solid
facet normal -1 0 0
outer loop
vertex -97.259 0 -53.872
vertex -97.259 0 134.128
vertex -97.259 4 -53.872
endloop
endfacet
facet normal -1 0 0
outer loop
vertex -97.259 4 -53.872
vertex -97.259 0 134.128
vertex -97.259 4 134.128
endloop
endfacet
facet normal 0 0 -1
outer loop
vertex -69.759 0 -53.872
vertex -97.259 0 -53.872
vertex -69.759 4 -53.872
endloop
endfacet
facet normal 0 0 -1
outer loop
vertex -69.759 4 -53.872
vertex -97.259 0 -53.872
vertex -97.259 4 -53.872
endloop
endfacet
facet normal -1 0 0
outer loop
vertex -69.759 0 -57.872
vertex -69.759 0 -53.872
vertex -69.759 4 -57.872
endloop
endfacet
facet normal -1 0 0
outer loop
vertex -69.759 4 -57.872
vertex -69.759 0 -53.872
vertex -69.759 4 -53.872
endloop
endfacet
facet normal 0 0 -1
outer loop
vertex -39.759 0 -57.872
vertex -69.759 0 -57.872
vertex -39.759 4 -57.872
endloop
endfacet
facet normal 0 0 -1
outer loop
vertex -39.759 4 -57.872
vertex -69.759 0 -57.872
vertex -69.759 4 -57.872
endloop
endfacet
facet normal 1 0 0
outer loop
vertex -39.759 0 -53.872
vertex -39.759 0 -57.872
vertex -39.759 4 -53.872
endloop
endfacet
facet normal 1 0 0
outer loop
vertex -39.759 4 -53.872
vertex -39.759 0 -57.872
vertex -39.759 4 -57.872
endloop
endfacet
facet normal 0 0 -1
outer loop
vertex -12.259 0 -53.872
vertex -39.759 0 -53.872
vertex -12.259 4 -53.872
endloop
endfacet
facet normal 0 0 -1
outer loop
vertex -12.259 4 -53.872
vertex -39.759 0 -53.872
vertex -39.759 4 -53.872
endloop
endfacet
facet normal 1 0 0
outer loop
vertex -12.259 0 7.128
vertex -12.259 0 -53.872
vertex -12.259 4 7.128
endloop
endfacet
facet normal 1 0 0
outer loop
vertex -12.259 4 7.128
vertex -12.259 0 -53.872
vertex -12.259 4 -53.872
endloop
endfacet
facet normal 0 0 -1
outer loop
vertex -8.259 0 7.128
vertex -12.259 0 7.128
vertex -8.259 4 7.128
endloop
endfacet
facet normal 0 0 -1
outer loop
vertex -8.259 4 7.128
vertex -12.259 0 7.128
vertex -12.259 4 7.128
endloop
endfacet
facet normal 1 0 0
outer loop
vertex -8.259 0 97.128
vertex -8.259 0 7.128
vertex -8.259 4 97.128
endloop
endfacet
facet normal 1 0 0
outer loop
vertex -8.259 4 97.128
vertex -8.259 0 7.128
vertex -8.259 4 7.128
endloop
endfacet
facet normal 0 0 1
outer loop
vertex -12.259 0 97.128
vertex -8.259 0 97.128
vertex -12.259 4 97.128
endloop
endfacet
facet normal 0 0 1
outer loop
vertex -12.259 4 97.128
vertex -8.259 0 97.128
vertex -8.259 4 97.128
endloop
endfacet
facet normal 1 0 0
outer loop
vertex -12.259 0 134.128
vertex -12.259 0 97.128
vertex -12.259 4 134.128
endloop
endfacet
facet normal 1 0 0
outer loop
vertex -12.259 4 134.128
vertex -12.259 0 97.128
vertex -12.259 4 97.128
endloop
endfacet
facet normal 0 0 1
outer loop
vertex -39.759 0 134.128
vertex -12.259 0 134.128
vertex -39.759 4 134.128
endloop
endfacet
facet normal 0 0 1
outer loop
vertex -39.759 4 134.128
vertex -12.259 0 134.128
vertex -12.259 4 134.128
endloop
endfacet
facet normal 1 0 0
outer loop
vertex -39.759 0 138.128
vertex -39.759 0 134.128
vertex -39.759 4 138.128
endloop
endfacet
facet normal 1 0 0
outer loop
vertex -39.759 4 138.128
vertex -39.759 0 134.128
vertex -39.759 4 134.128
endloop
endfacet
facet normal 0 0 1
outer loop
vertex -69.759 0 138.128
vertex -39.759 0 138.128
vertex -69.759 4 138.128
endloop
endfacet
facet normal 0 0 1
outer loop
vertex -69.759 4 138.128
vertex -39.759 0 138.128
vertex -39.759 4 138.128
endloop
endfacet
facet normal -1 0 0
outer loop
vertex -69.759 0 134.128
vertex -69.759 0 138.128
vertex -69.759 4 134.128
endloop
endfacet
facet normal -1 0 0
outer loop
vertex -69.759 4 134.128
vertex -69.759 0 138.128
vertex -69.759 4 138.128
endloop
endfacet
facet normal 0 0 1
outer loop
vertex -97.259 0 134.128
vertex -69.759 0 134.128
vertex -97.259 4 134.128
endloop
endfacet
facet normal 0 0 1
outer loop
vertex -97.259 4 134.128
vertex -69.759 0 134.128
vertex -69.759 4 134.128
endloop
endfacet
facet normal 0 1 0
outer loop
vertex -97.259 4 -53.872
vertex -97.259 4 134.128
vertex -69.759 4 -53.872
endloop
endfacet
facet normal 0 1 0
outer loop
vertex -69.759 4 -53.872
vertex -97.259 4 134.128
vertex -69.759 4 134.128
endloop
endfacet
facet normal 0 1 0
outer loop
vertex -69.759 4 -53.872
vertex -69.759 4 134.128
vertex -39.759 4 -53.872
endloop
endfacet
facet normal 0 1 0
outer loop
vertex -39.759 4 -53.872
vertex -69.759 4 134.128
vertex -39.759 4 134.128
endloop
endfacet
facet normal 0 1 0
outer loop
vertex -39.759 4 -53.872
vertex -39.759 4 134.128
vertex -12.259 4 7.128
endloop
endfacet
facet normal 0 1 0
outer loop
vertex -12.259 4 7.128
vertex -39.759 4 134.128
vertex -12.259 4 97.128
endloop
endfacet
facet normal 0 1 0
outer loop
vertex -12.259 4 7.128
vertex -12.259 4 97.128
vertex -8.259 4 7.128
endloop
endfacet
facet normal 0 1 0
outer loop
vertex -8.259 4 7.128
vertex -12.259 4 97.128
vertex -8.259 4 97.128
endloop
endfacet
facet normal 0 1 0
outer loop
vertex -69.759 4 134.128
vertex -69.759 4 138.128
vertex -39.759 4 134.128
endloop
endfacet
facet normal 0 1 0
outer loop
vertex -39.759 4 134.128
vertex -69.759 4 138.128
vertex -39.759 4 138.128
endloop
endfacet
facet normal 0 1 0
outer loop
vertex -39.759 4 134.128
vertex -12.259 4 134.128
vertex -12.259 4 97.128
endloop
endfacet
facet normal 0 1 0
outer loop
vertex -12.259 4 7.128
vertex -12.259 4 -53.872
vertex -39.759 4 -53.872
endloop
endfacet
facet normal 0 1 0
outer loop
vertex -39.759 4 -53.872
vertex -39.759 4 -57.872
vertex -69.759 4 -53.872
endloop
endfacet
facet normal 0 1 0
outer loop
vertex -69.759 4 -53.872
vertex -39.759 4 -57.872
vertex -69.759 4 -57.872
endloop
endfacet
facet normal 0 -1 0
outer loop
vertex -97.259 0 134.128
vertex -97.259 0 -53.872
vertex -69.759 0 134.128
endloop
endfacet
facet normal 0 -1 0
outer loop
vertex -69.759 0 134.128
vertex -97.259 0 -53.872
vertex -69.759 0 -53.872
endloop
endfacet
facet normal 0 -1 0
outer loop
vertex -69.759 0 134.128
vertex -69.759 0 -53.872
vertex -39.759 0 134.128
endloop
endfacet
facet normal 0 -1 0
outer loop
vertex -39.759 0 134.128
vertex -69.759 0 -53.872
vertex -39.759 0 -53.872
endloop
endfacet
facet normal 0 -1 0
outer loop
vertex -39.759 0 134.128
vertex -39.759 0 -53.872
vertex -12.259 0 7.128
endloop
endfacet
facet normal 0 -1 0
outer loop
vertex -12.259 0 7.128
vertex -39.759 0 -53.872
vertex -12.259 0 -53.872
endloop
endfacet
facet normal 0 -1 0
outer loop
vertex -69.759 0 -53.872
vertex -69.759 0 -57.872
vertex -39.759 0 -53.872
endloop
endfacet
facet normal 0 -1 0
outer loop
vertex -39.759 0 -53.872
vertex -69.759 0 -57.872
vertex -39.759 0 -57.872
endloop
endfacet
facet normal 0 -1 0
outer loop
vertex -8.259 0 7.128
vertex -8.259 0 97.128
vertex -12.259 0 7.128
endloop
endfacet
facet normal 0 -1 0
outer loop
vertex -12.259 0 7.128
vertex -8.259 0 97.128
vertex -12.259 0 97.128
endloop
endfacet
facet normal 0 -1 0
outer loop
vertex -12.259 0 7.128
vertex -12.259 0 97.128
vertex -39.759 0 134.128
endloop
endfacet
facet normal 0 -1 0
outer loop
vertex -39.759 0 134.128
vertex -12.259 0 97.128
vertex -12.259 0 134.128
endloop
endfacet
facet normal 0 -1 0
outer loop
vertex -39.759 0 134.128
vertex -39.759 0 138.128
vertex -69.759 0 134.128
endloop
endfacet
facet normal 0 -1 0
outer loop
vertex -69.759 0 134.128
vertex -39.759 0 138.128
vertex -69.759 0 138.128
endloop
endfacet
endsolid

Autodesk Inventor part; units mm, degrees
ref_plane "YZ Plane" through (0, 0, 0) normal (1, 0, 0) x (0, 1, 0)
ref_plane "XZ Plane" through (0, 0, 0) normal (0, 1, 0) x (-1, 0, 0)
ref_plane "XY Plane" through (0, 0, 0) normal (0, 0, 1) x (1, 0, 0)
sketch "Эскиз1" plane through (0, 0, 0) normal (0, 1, 0) x (-1, 0, 0)
  line L0 (97.2595, 134.1284) -> (12.2595, 134.1284)
  line L1 (12.2595, 134.1284) -> (12.2595, -53.8716)
  line L2 (12.2595, -53.8716) -> (97.2595, -53.8716)
  line L3 (97.2595, -53.8716) -> (97.2595, 134.1284)
  line L4 (12.2595, 97.1284) -> (8.2595, 97.1284)
  line L5 (8.2595, 97.1284) -> (8.2595, 7.1284)
  line L6 (8.2595, 7.1284) -> (12.2595, 7.1284)
  line L7 (12.2595, 7.1284) -> (12.2595, 97.1284)
  line L8 (69.7595, 138.1284) -> (39.7595, 138.1284)
  line L9 (39.7595, 138.1284) -> (39.7595, 134.1284)
  line L10 (39.7595, 134.1284) -> (69.7595, 134.1284)
  line L11 (69.7595, 134.1284) -> (69.7595, 138.1284)
  line L12 (69.7595, -53.8716) -> (39.7595, -53.8716)
  line L13 (39.7595, -53.8716) -> (39.7595, -57.8716)
  line L14 (39.7595, -57.8716) -> (69.7595, -57.8716)
  line L15 (69.7595, -57.8716) -> (69.7595, -53.8716)
  line L16 (54.7595, -53.8716) -> (54.7595, -83.5129) construction
  point P0 (-14.3828, -135.2029)
  point P1 (-14.3828, -200.4773)
  point P2 (-14.3828, -47.8079)
  point P3 (-14.3828, 17.4664)
  point P4 (-10.7565, -263.2131)
  point P5 (-3.5038, -263.2131)
  point P6 (-3.5038, 232.8717)
  point P7 (-10.7565, 232.8717)
  point P8 (-3.5038, 79.8397)
  point P9 (-10.7565, 79.8397)
  point P10 (-14.3828, 17.4664)
  point P11 (-14.3828, -47.8079)
  point P12 (-10.7565, -110.1811)
  point P13 (-3.5038, -110.1811)
  point P14 (69.7595, 134.1284)
  point P15 (54.7595, -57.8716)
  point P16 (54.7595, 138.1284)
  dimension "d12" = 4
  dimension "d13" = 90
  dimension "d14" = 85
  dimension "d16" = 37
  dimension "d17" = 30
  dimension "d18" = 4
  dimension "d23" = 61
extrude "Выдавливание1" add sketch "Эскиз1" along normal blind 4
properties part number "стенка 3"
